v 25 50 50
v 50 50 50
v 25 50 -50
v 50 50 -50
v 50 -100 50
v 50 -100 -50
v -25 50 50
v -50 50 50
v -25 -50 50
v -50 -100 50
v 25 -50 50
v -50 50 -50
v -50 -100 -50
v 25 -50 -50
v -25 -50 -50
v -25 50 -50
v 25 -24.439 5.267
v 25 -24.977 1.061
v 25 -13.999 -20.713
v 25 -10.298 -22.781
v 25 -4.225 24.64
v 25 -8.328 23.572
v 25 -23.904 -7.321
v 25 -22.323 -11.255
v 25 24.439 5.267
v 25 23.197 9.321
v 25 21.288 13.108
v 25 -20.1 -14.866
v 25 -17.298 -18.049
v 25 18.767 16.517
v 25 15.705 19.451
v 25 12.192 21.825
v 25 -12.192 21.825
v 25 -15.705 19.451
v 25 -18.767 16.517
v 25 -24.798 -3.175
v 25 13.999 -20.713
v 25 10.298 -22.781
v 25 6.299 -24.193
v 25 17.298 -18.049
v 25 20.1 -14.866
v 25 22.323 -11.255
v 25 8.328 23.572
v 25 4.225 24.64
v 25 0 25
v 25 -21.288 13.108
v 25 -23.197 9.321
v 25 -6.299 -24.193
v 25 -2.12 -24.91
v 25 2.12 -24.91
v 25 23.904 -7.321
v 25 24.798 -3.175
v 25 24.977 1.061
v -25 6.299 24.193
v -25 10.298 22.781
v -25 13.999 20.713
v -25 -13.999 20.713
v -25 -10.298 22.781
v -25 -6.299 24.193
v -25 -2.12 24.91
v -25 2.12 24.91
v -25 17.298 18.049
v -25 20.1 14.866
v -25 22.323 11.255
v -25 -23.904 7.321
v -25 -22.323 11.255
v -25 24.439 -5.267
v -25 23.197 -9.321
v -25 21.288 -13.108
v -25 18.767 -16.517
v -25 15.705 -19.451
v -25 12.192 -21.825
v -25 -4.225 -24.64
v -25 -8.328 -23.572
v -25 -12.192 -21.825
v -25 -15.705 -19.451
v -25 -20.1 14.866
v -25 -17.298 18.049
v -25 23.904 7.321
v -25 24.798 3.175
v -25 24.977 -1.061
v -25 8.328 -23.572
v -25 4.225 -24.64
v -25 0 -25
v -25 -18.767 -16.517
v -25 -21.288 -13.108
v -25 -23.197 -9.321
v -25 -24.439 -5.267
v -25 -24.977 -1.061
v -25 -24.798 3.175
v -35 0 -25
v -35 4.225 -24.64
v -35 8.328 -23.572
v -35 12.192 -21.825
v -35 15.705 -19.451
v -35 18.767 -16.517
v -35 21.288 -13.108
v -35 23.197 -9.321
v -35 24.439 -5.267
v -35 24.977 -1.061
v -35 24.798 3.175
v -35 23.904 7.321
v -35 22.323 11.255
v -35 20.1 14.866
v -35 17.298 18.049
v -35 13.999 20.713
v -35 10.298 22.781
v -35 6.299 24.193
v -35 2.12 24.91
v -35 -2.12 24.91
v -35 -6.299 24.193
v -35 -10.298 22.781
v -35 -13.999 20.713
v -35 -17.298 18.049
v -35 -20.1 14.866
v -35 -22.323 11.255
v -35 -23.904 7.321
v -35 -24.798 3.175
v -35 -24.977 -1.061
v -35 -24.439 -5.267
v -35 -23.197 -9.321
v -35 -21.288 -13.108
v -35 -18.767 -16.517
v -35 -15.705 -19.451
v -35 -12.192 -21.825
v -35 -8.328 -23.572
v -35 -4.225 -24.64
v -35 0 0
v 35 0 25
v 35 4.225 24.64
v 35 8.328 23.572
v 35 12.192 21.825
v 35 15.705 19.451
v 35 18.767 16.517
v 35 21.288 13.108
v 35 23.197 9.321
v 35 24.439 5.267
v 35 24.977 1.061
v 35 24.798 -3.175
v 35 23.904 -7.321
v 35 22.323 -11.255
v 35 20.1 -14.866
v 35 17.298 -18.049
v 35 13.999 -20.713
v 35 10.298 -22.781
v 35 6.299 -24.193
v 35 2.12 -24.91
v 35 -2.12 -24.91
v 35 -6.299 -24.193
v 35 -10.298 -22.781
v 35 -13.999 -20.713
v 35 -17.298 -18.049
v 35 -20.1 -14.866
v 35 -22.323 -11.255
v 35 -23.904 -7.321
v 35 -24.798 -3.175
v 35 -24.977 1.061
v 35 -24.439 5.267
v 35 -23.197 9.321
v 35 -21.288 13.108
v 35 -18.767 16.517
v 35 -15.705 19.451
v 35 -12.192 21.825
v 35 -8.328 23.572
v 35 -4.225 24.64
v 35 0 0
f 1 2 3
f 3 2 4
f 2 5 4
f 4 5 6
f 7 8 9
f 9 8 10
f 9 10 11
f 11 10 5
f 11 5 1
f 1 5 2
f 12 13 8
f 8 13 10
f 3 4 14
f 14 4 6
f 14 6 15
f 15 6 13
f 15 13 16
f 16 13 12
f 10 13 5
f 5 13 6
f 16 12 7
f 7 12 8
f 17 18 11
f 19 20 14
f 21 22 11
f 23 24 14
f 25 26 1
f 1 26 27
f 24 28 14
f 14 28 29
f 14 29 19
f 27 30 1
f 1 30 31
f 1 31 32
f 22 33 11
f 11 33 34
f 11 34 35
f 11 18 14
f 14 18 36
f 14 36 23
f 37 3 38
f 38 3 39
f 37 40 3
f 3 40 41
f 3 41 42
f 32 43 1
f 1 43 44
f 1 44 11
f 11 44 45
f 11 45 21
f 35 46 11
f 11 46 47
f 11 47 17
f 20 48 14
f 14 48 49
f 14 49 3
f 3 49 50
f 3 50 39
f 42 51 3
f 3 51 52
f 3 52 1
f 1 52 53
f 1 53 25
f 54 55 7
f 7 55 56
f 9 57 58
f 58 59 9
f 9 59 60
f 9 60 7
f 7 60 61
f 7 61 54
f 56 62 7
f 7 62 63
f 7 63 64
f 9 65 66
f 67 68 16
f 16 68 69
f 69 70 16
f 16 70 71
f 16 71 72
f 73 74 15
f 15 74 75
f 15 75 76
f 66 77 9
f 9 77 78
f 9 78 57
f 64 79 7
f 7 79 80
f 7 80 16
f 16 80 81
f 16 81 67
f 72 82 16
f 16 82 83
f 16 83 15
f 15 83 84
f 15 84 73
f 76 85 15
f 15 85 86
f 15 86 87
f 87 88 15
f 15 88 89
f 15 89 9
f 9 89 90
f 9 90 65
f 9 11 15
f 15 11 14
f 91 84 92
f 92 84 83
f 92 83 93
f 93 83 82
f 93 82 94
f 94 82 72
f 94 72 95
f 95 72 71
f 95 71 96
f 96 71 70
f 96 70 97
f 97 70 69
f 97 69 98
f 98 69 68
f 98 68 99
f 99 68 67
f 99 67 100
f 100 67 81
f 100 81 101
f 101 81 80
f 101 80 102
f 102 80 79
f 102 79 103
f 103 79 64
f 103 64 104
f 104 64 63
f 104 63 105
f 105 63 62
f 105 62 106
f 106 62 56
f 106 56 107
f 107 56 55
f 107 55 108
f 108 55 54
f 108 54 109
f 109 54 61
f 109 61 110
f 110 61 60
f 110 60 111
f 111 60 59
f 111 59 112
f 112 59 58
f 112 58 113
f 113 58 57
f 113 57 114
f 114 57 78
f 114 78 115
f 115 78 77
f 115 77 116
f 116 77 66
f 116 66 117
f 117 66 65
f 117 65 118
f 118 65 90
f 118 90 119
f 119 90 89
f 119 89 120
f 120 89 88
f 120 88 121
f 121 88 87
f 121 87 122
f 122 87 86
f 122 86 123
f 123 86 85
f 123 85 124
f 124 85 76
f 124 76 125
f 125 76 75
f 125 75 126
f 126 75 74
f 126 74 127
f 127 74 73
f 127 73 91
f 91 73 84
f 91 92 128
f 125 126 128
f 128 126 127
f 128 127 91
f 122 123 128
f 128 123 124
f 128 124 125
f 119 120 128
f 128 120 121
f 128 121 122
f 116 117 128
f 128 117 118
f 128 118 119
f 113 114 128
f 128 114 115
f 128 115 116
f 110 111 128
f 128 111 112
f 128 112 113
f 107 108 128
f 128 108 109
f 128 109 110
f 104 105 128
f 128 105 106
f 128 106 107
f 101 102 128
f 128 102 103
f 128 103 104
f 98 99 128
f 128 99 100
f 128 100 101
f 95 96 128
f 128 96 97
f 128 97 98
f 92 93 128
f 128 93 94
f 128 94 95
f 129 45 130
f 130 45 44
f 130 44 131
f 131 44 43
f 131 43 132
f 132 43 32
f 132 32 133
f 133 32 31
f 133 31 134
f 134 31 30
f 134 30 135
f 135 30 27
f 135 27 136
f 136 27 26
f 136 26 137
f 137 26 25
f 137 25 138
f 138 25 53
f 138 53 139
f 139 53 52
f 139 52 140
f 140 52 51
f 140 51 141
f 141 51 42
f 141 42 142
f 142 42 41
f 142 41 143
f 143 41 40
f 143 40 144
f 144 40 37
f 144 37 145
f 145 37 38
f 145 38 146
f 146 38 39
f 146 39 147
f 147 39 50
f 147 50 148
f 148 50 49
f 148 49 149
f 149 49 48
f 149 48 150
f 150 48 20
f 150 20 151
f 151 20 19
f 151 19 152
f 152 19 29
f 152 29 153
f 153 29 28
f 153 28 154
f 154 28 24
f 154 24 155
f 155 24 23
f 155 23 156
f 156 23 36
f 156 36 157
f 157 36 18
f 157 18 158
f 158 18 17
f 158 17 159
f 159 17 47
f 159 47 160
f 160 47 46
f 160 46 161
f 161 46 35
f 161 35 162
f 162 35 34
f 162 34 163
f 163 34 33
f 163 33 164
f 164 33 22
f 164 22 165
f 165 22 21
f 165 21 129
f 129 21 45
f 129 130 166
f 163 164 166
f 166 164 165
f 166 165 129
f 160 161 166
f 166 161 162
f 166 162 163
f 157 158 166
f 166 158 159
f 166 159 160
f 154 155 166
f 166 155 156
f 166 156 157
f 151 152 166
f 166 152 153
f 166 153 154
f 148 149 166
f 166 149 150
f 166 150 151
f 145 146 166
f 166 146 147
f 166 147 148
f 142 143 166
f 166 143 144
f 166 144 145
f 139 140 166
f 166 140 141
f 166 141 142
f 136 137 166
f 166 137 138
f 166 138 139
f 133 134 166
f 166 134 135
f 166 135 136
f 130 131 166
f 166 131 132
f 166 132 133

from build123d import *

# Parameters (mm, degrees)
EXTRUDE_1_DEPTH      = 50
EXTRUDE_1_DEPTH_BACK = 100
SKETCH_2_W           = 100
SKETCH_2_H           = 100
SKETCH_3_W           = 50
SKETCH_3_H           = 100
CUT_EXTRUDE_1_DEPTH  = 100
SKETCH_4_R           = 25
CUT_EXTRUDE_2_DEPTH  = 10
CUT_EXTRUDE_START    = -10
SKETCH_5_R           = 25
CUT_EXTRUDE_3_DEPTH  = 10


with BuildPart() as part:
    # 草图2 → 凸台-拉伸1 (new, two sides: drawn at the far end of the back side and taken through both)
    with BuildSketch(Plane(origin=(0, 0, 0), x_dir=(1, 0, 0), z_dir=(0, 1, 0)).offset(-EXTRUDE_1_DEPTH_BACK)):
        Rectangle(SKETCH_2_W, SKETCH_2_H)
    extrude(amount=EXTRUDE_1_DEPTH + EXTRUDE_1_DEPTH_BACK)

    # 草图3 → 切除-拉伸1 (cut)
    with BuildSketch(Plane(origin=(0, 50, 0), x_dir=(1, 0, 0), z_dir=(0, 1, 0))):
        Rectangle(SKETCH_3_W, SKETCH_3_H)
    extrude(amount=-CUT_EXTRUDE_1_DEPTH, mode=Mode.SUBTRACT)

    # 草图4 → 切除-拉伸2 (cut)
    with BuildSketch(Plane(origin=(-25, 0, 0), x_dir=(0, 0, -1), z_dir=(1, 0, 0))):
        Circle(SKETCH_4_R)
    extrude(amount=-CUT_EXTRUDE_2_DEPTH, mode=Mode.SUBTRACT)

    # 草图5 → 切除-拉伸3 (cut)
    with BuildSketch(Plane.ZY.offset(-25).offset(CUT_EXTRUDE_START)):
        with Locations(Location((0, 0, 0), (0, 0, 180))):
            Circle(SKETCH_5_R)
    extrude(amount=CUT_EXTRUDE_3_DEPTH, mode=Mode.SUBTRACT)


solid = part.part
